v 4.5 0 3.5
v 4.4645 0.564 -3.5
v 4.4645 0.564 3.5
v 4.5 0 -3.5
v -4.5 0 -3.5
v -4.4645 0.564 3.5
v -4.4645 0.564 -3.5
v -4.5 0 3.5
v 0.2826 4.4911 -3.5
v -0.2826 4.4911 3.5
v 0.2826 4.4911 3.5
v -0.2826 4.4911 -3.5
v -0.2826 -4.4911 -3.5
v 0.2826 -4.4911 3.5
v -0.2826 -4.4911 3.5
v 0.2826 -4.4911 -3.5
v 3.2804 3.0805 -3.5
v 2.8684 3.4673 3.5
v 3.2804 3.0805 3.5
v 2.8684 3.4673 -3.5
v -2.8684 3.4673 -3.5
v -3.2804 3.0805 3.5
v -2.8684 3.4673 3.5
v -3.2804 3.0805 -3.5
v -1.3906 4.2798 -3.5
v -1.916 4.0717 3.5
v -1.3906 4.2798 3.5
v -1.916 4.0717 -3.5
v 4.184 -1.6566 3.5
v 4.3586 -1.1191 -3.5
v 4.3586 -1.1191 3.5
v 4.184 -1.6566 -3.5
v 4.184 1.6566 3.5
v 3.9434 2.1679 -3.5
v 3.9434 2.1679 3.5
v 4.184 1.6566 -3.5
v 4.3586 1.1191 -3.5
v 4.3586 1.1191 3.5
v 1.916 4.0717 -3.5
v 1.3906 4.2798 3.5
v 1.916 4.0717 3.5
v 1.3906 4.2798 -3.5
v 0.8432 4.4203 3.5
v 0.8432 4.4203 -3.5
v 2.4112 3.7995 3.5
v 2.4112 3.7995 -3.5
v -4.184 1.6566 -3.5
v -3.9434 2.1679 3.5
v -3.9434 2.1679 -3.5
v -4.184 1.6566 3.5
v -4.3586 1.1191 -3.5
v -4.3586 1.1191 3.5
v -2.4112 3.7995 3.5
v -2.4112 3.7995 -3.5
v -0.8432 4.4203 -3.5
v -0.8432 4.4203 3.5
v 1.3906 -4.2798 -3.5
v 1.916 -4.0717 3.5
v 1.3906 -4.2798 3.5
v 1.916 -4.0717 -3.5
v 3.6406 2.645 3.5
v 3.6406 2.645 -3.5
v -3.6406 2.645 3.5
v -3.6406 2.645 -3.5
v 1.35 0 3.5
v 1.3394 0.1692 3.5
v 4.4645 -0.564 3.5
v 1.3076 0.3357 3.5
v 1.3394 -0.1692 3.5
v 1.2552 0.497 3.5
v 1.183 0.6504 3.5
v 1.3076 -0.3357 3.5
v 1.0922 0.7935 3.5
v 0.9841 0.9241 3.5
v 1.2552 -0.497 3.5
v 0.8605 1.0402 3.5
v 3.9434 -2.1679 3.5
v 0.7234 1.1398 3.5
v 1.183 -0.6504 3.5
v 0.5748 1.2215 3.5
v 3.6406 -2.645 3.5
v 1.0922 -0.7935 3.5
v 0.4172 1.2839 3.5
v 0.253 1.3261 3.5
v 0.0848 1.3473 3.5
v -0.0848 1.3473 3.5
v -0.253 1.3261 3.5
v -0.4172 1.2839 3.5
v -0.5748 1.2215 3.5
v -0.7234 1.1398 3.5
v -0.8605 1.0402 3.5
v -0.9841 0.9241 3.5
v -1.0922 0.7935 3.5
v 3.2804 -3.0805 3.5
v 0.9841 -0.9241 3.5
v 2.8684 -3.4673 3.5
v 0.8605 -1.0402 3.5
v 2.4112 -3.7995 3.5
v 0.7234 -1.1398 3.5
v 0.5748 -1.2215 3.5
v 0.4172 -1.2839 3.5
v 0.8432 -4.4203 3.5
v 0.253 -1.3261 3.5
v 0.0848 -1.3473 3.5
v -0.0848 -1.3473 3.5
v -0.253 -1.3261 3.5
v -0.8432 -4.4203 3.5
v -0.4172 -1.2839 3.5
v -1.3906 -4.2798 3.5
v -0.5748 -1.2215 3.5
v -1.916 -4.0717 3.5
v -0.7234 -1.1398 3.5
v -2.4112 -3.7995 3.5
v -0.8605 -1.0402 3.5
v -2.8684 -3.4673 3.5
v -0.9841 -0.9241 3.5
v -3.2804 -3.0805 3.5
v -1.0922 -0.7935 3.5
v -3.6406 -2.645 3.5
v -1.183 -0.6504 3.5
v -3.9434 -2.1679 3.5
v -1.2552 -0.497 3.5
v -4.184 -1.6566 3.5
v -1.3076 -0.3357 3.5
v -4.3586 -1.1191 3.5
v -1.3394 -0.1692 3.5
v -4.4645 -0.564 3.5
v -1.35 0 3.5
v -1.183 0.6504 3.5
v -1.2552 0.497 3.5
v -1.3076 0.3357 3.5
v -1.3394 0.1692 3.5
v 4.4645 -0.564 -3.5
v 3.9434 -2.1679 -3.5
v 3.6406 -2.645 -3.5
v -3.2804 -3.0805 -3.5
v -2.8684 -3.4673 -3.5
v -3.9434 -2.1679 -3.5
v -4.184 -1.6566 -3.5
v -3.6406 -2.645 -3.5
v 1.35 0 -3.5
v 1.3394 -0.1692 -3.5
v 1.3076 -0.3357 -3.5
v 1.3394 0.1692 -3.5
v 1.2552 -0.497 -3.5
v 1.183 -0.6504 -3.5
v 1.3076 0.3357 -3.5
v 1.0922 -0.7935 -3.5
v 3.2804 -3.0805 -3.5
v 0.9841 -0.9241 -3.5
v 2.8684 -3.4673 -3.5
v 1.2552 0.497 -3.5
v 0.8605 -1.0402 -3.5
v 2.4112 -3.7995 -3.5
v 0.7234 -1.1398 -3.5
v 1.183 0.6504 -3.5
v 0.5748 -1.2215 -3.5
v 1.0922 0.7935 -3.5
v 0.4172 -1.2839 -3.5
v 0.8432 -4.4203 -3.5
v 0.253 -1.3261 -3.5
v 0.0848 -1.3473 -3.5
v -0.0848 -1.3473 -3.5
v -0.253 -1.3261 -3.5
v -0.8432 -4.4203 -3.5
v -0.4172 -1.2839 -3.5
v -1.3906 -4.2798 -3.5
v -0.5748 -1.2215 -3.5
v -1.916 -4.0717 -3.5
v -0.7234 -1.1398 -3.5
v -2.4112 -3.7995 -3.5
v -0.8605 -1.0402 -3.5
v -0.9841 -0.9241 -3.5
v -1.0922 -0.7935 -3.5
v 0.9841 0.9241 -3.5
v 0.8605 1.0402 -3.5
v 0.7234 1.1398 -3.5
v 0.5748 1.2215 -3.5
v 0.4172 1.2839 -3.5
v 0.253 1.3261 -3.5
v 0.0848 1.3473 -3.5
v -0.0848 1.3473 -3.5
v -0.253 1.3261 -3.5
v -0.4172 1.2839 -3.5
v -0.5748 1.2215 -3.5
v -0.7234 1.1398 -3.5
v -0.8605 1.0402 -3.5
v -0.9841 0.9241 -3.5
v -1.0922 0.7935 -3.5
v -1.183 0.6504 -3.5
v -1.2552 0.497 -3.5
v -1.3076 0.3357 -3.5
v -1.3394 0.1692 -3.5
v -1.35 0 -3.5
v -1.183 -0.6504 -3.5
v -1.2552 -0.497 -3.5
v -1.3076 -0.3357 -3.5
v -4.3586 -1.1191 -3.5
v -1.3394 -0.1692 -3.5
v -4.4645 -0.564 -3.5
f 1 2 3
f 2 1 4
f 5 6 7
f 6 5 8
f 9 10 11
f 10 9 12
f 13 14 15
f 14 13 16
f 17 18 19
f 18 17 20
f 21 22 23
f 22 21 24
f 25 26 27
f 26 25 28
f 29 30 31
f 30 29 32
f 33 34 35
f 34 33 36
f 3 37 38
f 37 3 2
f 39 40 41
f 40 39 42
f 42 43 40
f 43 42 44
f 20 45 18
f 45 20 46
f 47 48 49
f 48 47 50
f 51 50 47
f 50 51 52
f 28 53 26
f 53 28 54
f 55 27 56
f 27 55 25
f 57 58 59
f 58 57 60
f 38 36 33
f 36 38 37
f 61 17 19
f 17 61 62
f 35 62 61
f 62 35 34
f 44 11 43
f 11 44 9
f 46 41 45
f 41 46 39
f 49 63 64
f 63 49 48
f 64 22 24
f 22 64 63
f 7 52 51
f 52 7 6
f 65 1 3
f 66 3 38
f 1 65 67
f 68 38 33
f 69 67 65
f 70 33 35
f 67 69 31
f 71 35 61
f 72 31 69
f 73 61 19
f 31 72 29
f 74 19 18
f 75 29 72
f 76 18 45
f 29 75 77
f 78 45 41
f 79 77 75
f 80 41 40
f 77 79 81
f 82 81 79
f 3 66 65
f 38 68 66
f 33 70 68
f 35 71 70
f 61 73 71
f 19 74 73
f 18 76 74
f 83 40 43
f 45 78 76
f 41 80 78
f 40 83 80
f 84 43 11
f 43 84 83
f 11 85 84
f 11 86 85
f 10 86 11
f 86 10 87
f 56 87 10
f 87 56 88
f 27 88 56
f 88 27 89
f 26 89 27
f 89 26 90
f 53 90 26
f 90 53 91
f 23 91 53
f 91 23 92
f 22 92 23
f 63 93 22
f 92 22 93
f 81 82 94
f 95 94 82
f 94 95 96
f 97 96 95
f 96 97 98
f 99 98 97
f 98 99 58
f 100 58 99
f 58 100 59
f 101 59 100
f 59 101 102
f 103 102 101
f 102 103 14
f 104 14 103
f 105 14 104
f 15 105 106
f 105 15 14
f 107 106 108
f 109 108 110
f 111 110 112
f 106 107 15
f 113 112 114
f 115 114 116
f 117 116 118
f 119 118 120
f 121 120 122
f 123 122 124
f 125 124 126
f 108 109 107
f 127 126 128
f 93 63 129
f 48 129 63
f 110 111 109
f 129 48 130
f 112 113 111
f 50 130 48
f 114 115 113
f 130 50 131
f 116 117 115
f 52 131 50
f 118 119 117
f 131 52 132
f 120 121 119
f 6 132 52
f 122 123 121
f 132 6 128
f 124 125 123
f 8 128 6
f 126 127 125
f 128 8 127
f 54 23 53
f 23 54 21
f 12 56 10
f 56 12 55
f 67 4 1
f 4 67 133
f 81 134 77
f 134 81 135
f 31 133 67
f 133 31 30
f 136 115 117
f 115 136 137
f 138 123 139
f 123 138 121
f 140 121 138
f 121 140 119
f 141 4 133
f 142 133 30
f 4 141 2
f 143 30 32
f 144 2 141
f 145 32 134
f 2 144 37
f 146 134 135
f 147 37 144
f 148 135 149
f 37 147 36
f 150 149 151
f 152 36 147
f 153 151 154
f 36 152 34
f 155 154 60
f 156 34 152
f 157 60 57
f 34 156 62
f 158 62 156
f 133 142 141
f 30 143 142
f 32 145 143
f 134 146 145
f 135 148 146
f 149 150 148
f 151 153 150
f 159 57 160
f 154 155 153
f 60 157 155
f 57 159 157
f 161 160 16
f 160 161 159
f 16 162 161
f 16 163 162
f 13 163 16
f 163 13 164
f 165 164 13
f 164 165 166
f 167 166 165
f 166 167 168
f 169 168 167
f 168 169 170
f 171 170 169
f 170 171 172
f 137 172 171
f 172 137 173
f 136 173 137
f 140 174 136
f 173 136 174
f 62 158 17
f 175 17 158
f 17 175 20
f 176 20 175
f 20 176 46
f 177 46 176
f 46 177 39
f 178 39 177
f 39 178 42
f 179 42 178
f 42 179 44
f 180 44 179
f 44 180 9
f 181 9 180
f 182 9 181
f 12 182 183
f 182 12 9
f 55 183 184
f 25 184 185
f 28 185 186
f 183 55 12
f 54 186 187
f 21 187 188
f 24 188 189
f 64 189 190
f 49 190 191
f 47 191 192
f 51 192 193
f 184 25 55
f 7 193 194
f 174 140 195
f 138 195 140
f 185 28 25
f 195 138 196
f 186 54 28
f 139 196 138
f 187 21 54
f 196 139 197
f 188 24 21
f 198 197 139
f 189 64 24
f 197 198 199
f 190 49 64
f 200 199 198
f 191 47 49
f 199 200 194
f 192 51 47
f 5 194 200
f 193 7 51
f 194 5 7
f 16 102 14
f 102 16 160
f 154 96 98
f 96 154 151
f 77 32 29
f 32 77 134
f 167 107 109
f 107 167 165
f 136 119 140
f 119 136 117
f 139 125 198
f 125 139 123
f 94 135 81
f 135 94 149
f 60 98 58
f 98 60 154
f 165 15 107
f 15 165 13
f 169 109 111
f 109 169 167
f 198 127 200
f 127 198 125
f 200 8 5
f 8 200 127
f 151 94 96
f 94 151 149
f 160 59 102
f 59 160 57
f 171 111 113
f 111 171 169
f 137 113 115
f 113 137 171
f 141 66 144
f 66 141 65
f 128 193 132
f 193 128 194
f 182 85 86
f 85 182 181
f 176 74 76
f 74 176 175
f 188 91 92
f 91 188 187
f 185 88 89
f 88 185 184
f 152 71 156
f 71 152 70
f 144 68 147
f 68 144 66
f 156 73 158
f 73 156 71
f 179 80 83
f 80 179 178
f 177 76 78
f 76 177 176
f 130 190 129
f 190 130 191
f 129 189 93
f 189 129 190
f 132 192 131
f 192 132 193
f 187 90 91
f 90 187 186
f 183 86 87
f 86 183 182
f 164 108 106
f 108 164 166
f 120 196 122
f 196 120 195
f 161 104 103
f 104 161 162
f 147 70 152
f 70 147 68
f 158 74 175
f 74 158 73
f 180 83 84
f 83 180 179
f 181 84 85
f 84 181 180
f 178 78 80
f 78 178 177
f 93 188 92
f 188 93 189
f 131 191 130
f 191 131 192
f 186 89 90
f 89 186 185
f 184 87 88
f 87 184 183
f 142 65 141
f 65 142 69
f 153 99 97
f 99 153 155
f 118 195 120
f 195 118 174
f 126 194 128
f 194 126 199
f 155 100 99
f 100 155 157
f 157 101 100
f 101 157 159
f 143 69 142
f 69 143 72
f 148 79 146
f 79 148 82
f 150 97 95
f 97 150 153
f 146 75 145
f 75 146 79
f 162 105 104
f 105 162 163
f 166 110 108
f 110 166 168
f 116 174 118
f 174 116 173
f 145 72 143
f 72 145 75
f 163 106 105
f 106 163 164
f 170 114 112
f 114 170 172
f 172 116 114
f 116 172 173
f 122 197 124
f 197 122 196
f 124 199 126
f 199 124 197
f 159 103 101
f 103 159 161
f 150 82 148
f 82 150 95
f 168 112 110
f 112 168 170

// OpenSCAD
$fn = 50;


difference() {
	union() {
		translate(v = [0, 0, -3.5000000000]) {
			cylinder(h = 7, r = 4.5000000000);
		}
	}
	union() {
		translate(v = [0, 0, -100.0000000000]) {
			cylinder(h = 200, r = 1.3500000000);
		}
	}
}
